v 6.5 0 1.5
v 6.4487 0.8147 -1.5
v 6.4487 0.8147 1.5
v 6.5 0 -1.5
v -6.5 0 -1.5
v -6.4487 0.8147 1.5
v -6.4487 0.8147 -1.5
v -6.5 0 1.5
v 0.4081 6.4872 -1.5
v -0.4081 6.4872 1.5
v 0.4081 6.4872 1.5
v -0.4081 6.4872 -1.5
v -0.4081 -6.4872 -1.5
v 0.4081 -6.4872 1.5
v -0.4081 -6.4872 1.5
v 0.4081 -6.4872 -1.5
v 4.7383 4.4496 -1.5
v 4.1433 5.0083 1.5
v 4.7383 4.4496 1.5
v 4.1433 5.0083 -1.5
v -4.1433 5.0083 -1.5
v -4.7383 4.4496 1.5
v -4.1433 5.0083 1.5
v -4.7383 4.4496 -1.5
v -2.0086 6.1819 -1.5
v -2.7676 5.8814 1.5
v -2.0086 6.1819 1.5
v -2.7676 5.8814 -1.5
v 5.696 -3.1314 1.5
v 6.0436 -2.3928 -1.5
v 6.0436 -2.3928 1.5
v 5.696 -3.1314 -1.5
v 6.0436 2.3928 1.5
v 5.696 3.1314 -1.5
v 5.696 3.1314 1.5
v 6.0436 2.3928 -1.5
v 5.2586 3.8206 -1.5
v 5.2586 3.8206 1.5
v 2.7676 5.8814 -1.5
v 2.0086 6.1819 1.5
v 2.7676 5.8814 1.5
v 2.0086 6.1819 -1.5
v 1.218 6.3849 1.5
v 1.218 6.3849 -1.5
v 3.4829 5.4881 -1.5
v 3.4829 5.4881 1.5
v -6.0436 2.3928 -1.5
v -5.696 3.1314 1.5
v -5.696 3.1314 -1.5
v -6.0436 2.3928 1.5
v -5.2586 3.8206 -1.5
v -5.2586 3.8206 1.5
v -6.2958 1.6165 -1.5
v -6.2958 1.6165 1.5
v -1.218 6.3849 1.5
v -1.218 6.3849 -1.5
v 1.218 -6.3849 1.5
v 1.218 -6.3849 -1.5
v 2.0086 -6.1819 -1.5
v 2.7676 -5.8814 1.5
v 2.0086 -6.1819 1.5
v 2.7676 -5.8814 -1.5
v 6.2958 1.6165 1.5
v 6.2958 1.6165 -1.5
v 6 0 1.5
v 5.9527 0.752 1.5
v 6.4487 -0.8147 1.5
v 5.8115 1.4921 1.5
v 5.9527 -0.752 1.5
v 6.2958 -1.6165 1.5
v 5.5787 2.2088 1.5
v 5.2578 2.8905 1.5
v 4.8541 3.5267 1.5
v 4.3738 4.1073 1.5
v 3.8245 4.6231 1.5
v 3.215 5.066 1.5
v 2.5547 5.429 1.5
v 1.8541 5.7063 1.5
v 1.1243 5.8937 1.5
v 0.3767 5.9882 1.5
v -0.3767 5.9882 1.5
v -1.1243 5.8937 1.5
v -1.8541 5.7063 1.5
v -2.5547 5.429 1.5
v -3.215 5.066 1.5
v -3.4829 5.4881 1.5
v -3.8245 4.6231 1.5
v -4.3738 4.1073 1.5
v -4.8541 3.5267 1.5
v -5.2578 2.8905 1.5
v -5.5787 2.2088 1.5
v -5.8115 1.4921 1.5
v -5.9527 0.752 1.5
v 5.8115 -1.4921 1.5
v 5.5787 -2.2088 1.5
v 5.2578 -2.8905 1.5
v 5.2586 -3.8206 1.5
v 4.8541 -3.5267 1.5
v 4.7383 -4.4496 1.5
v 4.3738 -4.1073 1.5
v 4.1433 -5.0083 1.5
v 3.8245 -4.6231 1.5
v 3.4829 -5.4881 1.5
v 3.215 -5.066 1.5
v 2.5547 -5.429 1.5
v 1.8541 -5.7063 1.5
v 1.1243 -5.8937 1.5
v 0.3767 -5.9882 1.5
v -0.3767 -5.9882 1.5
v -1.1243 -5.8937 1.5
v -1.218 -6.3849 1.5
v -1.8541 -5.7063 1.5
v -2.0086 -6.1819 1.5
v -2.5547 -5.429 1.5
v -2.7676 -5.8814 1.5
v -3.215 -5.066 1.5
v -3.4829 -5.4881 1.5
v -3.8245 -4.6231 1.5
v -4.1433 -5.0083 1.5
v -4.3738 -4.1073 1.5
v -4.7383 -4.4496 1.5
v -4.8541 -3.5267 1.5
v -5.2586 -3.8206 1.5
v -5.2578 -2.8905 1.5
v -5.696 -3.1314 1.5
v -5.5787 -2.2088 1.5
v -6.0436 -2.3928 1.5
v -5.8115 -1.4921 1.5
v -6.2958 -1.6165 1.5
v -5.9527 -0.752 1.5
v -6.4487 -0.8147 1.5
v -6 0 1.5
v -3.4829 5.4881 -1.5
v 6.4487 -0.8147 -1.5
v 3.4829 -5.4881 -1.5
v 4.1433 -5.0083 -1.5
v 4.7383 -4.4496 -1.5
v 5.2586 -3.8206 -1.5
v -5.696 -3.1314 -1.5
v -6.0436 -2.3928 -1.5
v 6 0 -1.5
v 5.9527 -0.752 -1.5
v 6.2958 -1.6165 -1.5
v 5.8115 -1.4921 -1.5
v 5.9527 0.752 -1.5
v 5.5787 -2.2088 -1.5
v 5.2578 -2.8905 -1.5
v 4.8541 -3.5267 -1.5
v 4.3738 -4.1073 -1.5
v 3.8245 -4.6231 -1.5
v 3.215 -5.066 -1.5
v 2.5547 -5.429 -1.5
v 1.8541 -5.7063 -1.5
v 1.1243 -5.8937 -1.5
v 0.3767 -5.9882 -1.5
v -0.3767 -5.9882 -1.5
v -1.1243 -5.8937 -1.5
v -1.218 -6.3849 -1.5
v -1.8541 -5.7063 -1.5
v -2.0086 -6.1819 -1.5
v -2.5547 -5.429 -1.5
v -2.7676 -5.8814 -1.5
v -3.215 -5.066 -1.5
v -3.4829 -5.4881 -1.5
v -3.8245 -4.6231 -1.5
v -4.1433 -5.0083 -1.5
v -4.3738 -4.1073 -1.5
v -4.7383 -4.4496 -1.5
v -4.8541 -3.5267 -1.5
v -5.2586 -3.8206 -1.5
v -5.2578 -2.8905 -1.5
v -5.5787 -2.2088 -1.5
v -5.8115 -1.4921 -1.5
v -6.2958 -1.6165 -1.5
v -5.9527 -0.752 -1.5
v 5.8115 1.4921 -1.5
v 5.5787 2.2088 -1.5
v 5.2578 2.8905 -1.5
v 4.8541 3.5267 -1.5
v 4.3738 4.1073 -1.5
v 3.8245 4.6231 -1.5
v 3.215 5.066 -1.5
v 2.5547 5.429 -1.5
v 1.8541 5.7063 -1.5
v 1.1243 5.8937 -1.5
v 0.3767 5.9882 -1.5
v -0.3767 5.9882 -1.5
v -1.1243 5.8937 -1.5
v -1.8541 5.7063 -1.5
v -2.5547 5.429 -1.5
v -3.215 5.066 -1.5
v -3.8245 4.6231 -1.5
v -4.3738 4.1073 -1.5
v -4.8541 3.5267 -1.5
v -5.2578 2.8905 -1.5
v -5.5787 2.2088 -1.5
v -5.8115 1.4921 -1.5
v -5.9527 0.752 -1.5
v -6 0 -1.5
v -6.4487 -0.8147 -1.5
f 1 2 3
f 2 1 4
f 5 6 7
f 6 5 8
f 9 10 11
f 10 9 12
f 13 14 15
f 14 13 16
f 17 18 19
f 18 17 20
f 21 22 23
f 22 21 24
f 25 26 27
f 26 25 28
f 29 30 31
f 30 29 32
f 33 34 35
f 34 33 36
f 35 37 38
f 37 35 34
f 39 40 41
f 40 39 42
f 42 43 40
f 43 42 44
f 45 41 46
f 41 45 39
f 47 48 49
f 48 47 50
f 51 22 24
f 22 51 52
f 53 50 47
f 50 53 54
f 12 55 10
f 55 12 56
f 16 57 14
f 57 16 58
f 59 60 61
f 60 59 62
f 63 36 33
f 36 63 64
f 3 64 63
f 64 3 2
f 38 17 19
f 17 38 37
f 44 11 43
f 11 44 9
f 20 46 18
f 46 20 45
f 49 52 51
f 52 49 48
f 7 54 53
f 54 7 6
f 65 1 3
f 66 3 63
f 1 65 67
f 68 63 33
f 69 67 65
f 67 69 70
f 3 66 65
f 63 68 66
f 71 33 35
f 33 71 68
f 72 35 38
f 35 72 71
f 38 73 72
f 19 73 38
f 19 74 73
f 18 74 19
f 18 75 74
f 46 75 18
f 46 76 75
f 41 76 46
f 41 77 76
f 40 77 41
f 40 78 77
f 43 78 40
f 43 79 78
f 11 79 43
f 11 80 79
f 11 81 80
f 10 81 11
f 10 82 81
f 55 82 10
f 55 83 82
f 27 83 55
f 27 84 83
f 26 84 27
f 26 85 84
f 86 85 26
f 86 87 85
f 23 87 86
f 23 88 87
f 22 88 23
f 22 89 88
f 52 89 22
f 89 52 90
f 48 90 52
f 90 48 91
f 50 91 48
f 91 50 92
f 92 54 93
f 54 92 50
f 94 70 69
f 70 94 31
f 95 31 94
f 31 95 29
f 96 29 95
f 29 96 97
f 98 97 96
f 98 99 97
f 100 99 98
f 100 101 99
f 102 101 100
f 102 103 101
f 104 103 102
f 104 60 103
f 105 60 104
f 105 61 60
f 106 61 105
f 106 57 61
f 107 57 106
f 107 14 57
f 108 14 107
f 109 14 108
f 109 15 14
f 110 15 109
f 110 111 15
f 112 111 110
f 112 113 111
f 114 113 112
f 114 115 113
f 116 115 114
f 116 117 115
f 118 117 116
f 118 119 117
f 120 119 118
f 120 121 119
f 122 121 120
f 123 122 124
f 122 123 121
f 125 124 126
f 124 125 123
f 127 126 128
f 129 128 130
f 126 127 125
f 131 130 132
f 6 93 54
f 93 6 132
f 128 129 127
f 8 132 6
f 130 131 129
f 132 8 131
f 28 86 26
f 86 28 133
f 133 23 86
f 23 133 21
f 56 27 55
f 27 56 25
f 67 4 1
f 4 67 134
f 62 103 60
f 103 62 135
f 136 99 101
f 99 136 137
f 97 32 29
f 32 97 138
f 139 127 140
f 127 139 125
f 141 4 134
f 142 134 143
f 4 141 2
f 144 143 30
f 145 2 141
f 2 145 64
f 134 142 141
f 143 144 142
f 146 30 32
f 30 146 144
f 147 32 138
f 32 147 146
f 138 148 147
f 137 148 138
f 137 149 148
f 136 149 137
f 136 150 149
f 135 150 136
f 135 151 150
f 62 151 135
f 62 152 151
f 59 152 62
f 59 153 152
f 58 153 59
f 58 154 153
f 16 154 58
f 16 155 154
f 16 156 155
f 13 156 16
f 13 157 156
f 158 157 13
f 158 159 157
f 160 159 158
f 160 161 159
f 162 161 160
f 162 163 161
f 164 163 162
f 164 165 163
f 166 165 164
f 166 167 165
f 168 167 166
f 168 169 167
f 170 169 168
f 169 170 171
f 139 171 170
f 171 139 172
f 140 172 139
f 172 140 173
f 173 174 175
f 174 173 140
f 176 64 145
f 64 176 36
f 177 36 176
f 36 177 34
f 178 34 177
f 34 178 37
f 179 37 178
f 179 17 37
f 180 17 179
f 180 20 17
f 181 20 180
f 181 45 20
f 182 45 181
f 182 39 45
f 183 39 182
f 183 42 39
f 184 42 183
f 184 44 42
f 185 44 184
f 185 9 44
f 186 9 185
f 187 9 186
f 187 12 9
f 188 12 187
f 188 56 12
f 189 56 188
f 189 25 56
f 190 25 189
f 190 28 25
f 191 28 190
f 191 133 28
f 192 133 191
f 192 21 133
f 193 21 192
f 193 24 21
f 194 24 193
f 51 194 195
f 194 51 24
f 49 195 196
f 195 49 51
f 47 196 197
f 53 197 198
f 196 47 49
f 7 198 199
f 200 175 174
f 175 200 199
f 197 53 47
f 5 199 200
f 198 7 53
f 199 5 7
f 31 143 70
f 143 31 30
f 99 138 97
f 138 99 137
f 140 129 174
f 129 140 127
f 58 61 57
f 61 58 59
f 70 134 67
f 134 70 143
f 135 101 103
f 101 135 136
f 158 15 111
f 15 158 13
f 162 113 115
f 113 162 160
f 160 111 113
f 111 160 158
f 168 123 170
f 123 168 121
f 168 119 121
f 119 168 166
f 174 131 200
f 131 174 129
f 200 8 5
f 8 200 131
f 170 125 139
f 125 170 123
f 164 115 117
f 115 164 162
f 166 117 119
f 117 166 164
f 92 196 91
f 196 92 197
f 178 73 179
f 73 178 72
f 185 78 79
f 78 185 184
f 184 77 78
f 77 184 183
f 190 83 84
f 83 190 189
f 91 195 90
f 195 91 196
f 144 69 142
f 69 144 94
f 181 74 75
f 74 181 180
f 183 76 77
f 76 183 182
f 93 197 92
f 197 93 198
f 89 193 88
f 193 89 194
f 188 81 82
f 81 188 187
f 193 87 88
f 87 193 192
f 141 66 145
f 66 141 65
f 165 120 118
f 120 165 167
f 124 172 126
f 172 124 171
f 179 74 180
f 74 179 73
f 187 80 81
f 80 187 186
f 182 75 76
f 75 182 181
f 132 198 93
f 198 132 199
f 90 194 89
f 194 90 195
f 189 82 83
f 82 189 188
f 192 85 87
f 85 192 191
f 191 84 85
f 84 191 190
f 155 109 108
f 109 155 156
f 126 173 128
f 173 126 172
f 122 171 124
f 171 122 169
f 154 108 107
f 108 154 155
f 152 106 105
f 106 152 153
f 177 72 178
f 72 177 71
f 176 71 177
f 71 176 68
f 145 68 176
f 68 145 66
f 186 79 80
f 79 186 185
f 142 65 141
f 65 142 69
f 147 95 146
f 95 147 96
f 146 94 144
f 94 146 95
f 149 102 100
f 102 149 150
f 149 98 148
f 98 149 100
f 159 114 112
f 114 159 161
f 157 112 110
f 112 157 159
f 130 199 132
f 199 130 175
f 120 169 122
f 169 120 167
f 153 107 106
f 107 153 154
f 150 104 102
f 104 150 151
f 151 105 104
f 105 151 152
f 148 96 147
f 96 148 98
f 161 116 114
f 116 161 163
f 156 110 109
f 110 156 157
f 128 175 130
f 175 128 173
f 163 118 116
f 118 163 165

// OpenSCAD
$fn = 50;


difference() {
	union() {
		translate(v = [0, 0, -1.5000000000]) {
			cylinder(h = 3, r = 6.5000000000);
		}
	}
	union() {
		translate(v = [0, 0, -100.0000000000]) {
			cylinder(h = 200, r = 6);
		}
	}
}
